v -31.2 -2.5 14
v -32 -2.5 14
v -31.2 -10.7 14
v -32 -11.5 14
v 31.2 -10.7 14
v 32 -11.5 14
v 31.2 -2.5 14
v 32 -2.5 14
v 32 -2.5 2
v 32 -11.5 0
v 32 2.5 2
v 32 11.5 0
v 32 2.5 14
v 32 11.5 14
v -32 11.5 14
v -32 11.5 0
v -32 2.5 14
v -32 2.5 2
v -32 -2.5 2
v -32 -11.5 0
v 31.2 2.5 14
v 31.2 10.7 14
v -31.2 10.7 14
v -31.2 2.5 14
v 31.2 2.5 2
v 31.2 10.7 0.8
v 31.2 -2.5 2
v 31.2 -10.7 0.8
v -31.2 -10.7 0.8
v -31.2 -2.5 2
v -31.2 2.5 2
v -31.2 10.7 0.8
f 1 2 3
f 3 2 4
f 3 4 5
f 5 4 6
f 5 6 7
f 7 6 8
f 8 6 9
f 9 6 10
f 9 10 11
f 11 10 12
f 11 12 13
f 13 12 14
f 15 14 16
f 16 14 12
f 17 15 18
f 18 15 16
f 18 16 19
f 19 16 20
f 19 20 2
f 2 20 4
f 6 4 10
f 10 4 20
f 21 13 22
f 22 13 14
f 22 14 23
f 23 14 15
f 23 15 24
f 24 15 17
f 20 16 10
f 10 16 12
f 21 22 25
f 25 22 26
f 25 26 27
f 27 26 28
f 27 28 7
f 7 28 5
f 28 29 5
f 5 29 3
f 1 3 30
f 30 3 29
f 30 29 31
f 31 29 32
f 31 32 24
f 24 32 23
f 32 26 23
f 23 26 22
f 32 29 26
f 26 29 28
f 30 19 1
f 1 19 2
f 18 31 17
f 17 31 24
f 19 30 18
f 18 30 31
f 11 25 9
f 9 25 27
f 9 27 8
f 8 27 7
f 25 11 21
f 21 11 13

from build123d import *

# Parameters (mm, degrees)
SKETCH2_W           = 64
SKETCH2_H           = 23
BOSS_EXTRUDE1_DEPTH = 14
SKETCH3_W           = 62.4
SKETCH3_H           = 21.4
CUT_EXTRUDE1_DEPTH  = 13.2
SKETCH4_W           = 24
SKETCH4_H           = 5
CUT_EXTRUDE3_DEPTH  = 67.515035894


with BuildPart() as part:
    # Sketch2 → Boss-Extrude1 (new body)
    with BuildSketch(Plane.XY):
        Rectangle(SKETCH2_W, SKETCH2_H)
    extrude(amount=BOSS_EXTRUDE1_DEPTH)

    # Sketch3 → Cut-Extrude1 (cut)
    with BuildSketch(Plane.XY.offset(14)):
        Rectangle(SKETCH3_W, SKETCH3_H)
    extrude(amount=-CUT_EXTRUDE1_DEPTH, mode=Mode.SUBTRACT)

    # Sketch4 → Cut-Extrude3 (cut, through all)
    with BuildSketch(Plane(origin=(32, 0, 0), x_dir=(0, 0, -1), z_dir=(1, 0, 0))):
        with Locations((-14, 0)):
            Rectangle(SKETCH4_W, SKETCH4_H)
    extrude(amount=-CUT_EXTRUDE3_DEPTH, mode=Mode.SUBTRACT)


solid = part.part
